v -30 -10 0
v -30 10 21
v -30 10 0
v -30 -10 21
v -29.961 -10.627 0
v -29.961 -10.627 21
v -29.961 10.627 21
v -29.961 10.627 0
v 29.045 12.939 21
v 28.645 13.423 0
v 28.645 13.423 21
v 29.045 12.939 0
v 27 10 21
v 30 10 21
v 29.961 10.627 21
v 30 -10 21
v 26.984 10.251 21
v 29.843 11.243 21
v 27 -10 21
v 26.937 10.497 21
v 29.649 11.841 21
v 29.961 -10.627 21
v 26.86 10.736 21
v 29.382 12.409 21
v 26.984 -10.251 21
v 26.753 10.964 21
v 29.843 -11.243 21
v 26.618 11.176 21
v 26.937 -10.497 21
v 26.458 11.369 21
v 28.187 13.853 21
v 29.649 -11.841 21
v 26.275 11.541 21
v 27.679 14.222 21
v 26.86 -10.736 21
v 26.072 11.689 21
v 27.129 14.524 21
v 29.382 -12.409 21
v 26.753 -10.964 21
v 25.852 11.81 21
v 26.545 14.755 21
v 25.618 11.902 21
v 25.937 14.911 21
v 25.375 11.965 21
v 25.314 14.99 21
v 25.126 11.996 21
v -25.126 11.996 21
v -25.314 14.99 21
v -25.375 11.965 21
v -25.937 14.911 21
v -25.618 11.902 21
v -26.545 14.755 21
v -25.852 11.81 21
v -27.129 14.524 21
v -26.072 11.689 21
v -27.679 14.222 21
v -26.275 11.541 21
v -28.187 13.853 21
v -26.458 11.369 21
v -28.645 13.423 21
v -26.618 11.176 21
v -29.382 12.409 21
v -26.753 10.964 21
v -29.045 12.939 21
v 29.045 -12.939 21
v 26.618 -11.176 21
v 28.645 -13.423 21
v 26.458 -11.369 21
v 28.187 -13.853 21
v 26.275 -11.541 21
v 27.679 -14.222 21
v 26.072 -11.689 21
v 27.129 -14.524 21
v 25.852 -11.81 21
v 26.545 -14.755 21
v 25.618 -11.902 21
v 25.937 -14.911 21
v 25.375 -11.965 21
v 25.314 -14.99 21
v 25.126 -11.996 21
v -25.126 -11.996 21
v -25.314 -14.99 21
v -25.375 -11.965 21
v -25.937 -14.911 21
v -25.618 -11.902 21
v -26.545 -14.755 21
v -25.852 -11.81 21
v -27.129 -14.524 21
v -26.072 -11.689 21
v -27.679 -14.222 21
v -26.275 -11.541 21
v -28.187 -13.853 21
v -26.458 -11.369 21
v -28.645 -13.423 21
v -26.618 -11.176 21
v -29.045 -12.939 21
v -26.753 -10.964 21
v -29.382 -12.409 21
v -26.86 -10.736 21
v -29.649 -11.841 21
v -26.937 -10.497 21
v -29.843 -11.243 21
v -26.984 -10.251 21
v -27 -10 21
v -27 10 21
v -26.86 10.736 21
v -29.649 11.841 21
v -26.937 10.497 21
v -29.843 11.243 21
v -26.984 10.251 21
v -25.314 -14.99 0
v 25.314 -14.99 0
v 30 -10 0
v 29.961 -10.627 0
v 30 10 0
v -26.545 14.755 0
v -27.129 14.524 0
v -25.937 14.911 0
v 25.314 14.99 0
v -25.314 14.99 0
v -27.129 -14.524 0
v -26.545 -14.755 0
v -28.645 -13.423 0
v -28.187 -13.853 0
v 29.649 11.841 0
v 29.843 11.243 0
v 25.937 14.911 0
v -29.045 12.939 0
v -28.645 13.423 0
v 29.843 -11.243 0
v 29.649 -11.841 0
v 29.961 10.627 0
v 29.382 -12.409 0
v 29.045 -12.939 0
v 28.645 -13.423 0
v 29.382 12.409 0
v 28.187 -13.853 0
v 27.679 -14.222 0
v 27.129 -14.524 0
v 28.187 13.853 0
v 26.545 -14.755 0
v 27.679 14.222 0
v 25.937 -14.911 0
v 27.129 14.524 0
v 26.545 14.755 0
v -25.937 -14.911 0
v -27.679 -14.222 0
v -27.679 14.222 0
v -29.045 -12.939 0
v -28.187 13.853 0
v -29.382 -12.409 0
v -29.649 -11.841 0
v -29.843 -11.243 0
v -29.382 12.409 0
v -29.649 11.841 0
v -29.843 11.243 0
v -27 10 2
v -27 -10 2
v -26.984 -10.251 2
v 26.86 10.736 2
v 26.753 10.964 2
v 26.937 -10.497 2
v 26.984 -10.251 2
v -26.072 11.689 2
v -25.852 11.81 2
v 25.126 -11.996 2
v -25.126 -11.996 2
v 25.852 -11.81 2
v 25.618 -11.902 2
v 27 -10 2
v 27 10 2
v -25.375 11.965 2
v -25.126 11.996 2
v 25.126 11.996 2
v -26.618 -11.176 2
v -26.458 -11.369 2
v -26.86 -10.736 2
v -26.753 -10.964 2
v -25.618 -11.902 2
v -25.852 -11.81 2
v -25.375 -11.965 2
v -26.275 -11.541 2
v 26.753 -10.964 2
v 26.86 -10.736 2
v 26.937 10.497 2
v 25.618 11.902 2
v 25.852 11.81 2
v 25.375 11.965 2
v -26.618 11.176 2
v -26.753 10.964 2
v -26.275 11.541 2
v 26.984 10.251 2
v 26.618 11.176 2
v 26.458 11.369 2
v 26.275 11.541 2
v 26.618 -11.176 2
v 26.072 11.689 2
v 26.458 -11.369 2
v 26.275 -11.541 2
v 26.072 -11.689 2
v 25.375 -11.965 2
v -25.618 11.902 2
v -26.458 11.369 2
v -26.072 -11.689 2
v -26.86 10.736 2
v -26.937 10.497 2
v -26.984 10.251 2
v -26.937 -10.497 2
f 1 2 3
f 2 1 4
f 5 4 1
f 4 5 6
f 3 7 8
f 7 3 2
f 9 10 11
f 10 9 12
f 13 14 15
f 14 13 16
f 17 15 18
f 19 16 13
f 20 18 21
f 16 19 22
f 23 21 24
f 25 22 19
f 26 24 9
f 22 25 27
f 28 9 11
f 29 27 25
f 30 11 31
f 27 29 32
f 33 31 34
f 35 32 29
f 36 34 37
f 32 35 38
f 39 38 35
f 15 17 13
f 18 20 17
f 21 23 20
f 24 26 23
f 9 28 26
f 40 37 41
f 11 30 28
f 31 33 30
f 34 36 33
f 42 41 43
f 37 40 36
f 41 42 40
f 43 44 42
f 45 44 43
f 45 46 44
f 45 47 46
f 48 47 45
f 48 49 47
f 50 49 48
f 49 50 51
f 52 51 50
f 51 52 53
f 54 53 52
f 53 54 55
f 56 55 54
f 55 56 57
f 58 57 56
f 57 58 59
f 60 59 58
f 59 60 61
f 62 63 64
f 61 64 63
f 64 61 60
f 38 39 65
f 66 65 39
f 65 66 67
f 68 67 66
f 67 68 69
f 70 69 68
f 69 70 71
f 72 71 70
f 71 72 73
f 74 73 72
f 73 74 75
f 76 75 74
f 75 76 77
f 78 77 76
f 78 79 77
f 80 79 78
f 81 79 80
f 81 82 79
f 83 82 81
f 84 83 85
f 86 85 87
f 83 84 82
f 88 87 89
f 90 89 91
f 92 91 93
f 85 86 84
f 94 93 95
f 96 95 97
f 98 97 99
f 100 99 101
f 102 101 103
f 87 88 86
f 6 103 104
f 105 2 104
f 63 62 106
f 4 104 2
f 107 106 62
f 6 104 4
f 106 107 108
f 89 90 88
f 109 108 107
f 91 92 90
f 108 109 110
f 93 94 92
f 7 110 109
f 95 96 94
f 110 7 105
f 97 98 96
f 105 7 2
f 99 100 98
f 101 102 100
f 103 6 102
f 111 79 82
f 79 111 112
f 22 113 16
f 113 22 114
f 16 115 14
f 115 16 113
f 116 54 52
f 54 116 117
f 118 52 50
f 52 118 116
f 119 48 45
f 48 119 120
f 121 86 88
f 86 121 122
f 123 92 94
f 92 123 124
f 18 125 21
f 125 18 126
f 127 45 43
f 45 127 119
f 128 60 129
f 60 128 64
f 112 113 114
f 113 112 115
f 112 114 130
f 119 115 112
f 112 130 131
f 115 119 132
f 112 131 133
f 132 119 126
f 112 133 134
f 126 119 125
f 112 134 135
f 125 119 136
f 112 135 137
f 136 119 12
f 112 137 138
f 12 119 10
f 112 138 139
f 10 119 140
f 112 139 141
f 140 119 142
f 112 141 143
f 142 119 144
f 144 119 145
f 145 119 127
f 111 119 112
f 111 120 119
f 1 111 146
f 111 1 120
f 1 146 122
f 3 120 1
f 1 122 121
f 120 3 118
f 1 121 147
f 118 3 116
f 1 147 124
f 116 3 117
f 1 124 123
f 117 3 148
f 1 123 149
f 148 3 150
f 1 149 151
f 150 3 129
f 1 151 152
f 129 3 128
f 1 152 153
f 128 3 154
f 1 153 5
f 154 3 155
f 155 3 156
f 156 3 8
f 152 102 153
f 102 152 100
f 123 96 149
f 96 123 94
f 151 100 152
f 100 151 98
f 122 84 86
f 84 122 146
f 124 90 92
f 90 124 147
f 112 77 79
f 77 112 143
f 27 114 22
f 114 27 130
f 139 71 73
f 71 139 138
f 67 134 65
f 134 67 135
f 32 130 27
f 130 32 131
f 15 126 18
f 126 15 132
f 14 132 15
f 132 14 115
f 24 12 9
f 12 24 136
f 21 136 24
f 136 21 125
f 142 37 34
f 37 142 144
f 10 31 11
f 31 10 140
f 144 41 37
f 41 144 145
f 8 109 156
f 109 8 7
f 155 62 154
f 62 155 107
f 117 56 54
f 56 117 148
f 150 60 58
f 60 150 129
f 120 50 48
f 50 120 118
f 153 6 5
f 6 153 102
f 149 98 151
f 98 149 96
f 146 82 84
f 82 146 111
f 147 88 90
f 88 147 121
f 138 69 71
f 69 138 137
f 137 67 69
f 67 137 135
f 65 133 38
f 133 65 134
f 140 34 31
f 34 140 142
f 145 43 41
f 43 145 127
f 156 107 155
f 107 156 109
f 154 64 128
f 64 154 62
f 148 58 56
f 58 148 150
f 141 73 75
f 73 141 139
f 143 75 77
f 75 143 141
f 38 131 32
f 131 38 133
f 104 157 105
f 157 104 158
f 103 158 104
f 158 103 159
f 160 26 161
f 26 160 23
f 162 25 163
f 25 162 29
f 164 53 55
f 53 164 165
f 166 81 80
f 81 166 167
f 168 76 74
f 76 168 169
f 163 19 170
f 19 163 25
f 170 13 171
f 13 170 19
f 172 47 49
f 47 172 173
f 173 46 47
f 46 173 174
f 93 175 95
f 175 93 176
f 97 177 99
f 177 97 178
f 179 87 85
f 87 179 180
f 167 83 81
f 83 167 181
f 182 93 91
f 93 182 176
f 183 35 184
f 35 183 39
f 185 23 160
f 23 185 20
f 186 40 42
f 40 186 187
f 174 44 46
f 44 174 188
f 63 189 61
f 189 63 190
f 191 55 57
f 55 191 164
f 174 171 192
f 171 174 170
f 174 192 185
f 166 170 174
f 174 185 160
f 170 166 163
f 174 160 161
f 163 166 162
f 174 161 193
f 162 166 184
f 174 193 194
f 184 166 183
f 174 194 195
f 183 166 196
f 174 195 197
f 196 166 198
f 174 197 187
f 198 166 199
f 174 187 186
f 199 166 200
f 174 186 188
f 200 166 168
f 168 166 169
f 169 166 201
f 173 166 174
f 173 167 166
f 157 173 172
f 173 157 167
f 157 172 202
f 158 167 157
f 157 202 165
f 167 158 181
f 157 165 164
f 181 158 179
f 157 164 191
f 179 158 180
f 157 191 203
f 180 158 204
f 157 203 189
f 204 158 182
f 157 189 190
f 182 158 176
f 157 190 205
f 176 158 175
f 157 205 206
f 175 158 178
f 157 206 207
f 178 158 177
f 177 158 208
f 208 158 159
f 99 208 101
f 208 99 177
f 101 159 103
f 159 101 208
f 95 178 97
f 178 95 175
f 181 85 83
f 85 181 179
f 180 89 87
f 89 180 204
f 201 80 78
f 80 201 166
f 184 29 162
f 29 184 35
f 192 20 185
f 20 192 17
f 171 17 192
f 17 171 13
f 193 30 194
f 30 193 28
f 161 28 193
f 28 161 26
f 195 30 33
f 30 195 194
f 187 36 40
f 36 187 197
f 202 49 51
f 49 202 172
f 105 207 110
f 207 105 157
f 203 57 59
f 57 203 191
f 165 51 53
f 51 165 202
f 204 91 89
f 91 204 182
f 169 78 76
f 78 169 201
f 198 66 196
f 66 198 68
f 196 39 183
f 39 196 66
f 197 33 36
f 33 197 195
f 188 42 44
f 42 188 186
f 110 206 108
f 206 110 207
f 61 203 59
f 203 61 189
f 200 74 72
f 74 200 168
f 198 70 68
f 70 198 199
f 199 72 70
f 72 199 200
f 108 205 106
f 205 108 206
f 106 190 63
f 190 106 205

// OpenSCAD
$fn = 50;


difference() {
	union() {
		hull() {
			translate(v = [-25.0000000000, 10.0000000000, 0]) {
				cylinder(h = 21, r = 5);
			}
			translate(v = [25.0000000000, 10.0000000000, 0]) {
				cylinder(h = 21, r = 5);
			}
			translate(v = [-25.0000000000, -10.0000000000, 0]) {
				cylinder(h = 21, r = 5);
			}
			translate(v = [25.0000000000, -10.0000000000, 0]) {
				cylinder(h = 21, r = 5);
			}
		}
	}
	union() {
		translate(v = [0, 0, 2]) {
			#hull() {
				translate(v = [-25.0000000000, 10.0000000000, 0]) {
					cylinder(h = 19, r = 2);
				}
				translate(v = [25.0000000000, 10.0000000000, 0]) {
					cylinder(h = 19, r = 2);
				}
				translate(v = [-25.0000000000, -10.0000000000, 0]) {
					cylinder(h = 19, r = 2);
				}
				translate(v = [25.0000000000, -10.0000000000, 0]) {
					cylinder(h = 19, r = 2);
				}
			}
		}
	}
}
